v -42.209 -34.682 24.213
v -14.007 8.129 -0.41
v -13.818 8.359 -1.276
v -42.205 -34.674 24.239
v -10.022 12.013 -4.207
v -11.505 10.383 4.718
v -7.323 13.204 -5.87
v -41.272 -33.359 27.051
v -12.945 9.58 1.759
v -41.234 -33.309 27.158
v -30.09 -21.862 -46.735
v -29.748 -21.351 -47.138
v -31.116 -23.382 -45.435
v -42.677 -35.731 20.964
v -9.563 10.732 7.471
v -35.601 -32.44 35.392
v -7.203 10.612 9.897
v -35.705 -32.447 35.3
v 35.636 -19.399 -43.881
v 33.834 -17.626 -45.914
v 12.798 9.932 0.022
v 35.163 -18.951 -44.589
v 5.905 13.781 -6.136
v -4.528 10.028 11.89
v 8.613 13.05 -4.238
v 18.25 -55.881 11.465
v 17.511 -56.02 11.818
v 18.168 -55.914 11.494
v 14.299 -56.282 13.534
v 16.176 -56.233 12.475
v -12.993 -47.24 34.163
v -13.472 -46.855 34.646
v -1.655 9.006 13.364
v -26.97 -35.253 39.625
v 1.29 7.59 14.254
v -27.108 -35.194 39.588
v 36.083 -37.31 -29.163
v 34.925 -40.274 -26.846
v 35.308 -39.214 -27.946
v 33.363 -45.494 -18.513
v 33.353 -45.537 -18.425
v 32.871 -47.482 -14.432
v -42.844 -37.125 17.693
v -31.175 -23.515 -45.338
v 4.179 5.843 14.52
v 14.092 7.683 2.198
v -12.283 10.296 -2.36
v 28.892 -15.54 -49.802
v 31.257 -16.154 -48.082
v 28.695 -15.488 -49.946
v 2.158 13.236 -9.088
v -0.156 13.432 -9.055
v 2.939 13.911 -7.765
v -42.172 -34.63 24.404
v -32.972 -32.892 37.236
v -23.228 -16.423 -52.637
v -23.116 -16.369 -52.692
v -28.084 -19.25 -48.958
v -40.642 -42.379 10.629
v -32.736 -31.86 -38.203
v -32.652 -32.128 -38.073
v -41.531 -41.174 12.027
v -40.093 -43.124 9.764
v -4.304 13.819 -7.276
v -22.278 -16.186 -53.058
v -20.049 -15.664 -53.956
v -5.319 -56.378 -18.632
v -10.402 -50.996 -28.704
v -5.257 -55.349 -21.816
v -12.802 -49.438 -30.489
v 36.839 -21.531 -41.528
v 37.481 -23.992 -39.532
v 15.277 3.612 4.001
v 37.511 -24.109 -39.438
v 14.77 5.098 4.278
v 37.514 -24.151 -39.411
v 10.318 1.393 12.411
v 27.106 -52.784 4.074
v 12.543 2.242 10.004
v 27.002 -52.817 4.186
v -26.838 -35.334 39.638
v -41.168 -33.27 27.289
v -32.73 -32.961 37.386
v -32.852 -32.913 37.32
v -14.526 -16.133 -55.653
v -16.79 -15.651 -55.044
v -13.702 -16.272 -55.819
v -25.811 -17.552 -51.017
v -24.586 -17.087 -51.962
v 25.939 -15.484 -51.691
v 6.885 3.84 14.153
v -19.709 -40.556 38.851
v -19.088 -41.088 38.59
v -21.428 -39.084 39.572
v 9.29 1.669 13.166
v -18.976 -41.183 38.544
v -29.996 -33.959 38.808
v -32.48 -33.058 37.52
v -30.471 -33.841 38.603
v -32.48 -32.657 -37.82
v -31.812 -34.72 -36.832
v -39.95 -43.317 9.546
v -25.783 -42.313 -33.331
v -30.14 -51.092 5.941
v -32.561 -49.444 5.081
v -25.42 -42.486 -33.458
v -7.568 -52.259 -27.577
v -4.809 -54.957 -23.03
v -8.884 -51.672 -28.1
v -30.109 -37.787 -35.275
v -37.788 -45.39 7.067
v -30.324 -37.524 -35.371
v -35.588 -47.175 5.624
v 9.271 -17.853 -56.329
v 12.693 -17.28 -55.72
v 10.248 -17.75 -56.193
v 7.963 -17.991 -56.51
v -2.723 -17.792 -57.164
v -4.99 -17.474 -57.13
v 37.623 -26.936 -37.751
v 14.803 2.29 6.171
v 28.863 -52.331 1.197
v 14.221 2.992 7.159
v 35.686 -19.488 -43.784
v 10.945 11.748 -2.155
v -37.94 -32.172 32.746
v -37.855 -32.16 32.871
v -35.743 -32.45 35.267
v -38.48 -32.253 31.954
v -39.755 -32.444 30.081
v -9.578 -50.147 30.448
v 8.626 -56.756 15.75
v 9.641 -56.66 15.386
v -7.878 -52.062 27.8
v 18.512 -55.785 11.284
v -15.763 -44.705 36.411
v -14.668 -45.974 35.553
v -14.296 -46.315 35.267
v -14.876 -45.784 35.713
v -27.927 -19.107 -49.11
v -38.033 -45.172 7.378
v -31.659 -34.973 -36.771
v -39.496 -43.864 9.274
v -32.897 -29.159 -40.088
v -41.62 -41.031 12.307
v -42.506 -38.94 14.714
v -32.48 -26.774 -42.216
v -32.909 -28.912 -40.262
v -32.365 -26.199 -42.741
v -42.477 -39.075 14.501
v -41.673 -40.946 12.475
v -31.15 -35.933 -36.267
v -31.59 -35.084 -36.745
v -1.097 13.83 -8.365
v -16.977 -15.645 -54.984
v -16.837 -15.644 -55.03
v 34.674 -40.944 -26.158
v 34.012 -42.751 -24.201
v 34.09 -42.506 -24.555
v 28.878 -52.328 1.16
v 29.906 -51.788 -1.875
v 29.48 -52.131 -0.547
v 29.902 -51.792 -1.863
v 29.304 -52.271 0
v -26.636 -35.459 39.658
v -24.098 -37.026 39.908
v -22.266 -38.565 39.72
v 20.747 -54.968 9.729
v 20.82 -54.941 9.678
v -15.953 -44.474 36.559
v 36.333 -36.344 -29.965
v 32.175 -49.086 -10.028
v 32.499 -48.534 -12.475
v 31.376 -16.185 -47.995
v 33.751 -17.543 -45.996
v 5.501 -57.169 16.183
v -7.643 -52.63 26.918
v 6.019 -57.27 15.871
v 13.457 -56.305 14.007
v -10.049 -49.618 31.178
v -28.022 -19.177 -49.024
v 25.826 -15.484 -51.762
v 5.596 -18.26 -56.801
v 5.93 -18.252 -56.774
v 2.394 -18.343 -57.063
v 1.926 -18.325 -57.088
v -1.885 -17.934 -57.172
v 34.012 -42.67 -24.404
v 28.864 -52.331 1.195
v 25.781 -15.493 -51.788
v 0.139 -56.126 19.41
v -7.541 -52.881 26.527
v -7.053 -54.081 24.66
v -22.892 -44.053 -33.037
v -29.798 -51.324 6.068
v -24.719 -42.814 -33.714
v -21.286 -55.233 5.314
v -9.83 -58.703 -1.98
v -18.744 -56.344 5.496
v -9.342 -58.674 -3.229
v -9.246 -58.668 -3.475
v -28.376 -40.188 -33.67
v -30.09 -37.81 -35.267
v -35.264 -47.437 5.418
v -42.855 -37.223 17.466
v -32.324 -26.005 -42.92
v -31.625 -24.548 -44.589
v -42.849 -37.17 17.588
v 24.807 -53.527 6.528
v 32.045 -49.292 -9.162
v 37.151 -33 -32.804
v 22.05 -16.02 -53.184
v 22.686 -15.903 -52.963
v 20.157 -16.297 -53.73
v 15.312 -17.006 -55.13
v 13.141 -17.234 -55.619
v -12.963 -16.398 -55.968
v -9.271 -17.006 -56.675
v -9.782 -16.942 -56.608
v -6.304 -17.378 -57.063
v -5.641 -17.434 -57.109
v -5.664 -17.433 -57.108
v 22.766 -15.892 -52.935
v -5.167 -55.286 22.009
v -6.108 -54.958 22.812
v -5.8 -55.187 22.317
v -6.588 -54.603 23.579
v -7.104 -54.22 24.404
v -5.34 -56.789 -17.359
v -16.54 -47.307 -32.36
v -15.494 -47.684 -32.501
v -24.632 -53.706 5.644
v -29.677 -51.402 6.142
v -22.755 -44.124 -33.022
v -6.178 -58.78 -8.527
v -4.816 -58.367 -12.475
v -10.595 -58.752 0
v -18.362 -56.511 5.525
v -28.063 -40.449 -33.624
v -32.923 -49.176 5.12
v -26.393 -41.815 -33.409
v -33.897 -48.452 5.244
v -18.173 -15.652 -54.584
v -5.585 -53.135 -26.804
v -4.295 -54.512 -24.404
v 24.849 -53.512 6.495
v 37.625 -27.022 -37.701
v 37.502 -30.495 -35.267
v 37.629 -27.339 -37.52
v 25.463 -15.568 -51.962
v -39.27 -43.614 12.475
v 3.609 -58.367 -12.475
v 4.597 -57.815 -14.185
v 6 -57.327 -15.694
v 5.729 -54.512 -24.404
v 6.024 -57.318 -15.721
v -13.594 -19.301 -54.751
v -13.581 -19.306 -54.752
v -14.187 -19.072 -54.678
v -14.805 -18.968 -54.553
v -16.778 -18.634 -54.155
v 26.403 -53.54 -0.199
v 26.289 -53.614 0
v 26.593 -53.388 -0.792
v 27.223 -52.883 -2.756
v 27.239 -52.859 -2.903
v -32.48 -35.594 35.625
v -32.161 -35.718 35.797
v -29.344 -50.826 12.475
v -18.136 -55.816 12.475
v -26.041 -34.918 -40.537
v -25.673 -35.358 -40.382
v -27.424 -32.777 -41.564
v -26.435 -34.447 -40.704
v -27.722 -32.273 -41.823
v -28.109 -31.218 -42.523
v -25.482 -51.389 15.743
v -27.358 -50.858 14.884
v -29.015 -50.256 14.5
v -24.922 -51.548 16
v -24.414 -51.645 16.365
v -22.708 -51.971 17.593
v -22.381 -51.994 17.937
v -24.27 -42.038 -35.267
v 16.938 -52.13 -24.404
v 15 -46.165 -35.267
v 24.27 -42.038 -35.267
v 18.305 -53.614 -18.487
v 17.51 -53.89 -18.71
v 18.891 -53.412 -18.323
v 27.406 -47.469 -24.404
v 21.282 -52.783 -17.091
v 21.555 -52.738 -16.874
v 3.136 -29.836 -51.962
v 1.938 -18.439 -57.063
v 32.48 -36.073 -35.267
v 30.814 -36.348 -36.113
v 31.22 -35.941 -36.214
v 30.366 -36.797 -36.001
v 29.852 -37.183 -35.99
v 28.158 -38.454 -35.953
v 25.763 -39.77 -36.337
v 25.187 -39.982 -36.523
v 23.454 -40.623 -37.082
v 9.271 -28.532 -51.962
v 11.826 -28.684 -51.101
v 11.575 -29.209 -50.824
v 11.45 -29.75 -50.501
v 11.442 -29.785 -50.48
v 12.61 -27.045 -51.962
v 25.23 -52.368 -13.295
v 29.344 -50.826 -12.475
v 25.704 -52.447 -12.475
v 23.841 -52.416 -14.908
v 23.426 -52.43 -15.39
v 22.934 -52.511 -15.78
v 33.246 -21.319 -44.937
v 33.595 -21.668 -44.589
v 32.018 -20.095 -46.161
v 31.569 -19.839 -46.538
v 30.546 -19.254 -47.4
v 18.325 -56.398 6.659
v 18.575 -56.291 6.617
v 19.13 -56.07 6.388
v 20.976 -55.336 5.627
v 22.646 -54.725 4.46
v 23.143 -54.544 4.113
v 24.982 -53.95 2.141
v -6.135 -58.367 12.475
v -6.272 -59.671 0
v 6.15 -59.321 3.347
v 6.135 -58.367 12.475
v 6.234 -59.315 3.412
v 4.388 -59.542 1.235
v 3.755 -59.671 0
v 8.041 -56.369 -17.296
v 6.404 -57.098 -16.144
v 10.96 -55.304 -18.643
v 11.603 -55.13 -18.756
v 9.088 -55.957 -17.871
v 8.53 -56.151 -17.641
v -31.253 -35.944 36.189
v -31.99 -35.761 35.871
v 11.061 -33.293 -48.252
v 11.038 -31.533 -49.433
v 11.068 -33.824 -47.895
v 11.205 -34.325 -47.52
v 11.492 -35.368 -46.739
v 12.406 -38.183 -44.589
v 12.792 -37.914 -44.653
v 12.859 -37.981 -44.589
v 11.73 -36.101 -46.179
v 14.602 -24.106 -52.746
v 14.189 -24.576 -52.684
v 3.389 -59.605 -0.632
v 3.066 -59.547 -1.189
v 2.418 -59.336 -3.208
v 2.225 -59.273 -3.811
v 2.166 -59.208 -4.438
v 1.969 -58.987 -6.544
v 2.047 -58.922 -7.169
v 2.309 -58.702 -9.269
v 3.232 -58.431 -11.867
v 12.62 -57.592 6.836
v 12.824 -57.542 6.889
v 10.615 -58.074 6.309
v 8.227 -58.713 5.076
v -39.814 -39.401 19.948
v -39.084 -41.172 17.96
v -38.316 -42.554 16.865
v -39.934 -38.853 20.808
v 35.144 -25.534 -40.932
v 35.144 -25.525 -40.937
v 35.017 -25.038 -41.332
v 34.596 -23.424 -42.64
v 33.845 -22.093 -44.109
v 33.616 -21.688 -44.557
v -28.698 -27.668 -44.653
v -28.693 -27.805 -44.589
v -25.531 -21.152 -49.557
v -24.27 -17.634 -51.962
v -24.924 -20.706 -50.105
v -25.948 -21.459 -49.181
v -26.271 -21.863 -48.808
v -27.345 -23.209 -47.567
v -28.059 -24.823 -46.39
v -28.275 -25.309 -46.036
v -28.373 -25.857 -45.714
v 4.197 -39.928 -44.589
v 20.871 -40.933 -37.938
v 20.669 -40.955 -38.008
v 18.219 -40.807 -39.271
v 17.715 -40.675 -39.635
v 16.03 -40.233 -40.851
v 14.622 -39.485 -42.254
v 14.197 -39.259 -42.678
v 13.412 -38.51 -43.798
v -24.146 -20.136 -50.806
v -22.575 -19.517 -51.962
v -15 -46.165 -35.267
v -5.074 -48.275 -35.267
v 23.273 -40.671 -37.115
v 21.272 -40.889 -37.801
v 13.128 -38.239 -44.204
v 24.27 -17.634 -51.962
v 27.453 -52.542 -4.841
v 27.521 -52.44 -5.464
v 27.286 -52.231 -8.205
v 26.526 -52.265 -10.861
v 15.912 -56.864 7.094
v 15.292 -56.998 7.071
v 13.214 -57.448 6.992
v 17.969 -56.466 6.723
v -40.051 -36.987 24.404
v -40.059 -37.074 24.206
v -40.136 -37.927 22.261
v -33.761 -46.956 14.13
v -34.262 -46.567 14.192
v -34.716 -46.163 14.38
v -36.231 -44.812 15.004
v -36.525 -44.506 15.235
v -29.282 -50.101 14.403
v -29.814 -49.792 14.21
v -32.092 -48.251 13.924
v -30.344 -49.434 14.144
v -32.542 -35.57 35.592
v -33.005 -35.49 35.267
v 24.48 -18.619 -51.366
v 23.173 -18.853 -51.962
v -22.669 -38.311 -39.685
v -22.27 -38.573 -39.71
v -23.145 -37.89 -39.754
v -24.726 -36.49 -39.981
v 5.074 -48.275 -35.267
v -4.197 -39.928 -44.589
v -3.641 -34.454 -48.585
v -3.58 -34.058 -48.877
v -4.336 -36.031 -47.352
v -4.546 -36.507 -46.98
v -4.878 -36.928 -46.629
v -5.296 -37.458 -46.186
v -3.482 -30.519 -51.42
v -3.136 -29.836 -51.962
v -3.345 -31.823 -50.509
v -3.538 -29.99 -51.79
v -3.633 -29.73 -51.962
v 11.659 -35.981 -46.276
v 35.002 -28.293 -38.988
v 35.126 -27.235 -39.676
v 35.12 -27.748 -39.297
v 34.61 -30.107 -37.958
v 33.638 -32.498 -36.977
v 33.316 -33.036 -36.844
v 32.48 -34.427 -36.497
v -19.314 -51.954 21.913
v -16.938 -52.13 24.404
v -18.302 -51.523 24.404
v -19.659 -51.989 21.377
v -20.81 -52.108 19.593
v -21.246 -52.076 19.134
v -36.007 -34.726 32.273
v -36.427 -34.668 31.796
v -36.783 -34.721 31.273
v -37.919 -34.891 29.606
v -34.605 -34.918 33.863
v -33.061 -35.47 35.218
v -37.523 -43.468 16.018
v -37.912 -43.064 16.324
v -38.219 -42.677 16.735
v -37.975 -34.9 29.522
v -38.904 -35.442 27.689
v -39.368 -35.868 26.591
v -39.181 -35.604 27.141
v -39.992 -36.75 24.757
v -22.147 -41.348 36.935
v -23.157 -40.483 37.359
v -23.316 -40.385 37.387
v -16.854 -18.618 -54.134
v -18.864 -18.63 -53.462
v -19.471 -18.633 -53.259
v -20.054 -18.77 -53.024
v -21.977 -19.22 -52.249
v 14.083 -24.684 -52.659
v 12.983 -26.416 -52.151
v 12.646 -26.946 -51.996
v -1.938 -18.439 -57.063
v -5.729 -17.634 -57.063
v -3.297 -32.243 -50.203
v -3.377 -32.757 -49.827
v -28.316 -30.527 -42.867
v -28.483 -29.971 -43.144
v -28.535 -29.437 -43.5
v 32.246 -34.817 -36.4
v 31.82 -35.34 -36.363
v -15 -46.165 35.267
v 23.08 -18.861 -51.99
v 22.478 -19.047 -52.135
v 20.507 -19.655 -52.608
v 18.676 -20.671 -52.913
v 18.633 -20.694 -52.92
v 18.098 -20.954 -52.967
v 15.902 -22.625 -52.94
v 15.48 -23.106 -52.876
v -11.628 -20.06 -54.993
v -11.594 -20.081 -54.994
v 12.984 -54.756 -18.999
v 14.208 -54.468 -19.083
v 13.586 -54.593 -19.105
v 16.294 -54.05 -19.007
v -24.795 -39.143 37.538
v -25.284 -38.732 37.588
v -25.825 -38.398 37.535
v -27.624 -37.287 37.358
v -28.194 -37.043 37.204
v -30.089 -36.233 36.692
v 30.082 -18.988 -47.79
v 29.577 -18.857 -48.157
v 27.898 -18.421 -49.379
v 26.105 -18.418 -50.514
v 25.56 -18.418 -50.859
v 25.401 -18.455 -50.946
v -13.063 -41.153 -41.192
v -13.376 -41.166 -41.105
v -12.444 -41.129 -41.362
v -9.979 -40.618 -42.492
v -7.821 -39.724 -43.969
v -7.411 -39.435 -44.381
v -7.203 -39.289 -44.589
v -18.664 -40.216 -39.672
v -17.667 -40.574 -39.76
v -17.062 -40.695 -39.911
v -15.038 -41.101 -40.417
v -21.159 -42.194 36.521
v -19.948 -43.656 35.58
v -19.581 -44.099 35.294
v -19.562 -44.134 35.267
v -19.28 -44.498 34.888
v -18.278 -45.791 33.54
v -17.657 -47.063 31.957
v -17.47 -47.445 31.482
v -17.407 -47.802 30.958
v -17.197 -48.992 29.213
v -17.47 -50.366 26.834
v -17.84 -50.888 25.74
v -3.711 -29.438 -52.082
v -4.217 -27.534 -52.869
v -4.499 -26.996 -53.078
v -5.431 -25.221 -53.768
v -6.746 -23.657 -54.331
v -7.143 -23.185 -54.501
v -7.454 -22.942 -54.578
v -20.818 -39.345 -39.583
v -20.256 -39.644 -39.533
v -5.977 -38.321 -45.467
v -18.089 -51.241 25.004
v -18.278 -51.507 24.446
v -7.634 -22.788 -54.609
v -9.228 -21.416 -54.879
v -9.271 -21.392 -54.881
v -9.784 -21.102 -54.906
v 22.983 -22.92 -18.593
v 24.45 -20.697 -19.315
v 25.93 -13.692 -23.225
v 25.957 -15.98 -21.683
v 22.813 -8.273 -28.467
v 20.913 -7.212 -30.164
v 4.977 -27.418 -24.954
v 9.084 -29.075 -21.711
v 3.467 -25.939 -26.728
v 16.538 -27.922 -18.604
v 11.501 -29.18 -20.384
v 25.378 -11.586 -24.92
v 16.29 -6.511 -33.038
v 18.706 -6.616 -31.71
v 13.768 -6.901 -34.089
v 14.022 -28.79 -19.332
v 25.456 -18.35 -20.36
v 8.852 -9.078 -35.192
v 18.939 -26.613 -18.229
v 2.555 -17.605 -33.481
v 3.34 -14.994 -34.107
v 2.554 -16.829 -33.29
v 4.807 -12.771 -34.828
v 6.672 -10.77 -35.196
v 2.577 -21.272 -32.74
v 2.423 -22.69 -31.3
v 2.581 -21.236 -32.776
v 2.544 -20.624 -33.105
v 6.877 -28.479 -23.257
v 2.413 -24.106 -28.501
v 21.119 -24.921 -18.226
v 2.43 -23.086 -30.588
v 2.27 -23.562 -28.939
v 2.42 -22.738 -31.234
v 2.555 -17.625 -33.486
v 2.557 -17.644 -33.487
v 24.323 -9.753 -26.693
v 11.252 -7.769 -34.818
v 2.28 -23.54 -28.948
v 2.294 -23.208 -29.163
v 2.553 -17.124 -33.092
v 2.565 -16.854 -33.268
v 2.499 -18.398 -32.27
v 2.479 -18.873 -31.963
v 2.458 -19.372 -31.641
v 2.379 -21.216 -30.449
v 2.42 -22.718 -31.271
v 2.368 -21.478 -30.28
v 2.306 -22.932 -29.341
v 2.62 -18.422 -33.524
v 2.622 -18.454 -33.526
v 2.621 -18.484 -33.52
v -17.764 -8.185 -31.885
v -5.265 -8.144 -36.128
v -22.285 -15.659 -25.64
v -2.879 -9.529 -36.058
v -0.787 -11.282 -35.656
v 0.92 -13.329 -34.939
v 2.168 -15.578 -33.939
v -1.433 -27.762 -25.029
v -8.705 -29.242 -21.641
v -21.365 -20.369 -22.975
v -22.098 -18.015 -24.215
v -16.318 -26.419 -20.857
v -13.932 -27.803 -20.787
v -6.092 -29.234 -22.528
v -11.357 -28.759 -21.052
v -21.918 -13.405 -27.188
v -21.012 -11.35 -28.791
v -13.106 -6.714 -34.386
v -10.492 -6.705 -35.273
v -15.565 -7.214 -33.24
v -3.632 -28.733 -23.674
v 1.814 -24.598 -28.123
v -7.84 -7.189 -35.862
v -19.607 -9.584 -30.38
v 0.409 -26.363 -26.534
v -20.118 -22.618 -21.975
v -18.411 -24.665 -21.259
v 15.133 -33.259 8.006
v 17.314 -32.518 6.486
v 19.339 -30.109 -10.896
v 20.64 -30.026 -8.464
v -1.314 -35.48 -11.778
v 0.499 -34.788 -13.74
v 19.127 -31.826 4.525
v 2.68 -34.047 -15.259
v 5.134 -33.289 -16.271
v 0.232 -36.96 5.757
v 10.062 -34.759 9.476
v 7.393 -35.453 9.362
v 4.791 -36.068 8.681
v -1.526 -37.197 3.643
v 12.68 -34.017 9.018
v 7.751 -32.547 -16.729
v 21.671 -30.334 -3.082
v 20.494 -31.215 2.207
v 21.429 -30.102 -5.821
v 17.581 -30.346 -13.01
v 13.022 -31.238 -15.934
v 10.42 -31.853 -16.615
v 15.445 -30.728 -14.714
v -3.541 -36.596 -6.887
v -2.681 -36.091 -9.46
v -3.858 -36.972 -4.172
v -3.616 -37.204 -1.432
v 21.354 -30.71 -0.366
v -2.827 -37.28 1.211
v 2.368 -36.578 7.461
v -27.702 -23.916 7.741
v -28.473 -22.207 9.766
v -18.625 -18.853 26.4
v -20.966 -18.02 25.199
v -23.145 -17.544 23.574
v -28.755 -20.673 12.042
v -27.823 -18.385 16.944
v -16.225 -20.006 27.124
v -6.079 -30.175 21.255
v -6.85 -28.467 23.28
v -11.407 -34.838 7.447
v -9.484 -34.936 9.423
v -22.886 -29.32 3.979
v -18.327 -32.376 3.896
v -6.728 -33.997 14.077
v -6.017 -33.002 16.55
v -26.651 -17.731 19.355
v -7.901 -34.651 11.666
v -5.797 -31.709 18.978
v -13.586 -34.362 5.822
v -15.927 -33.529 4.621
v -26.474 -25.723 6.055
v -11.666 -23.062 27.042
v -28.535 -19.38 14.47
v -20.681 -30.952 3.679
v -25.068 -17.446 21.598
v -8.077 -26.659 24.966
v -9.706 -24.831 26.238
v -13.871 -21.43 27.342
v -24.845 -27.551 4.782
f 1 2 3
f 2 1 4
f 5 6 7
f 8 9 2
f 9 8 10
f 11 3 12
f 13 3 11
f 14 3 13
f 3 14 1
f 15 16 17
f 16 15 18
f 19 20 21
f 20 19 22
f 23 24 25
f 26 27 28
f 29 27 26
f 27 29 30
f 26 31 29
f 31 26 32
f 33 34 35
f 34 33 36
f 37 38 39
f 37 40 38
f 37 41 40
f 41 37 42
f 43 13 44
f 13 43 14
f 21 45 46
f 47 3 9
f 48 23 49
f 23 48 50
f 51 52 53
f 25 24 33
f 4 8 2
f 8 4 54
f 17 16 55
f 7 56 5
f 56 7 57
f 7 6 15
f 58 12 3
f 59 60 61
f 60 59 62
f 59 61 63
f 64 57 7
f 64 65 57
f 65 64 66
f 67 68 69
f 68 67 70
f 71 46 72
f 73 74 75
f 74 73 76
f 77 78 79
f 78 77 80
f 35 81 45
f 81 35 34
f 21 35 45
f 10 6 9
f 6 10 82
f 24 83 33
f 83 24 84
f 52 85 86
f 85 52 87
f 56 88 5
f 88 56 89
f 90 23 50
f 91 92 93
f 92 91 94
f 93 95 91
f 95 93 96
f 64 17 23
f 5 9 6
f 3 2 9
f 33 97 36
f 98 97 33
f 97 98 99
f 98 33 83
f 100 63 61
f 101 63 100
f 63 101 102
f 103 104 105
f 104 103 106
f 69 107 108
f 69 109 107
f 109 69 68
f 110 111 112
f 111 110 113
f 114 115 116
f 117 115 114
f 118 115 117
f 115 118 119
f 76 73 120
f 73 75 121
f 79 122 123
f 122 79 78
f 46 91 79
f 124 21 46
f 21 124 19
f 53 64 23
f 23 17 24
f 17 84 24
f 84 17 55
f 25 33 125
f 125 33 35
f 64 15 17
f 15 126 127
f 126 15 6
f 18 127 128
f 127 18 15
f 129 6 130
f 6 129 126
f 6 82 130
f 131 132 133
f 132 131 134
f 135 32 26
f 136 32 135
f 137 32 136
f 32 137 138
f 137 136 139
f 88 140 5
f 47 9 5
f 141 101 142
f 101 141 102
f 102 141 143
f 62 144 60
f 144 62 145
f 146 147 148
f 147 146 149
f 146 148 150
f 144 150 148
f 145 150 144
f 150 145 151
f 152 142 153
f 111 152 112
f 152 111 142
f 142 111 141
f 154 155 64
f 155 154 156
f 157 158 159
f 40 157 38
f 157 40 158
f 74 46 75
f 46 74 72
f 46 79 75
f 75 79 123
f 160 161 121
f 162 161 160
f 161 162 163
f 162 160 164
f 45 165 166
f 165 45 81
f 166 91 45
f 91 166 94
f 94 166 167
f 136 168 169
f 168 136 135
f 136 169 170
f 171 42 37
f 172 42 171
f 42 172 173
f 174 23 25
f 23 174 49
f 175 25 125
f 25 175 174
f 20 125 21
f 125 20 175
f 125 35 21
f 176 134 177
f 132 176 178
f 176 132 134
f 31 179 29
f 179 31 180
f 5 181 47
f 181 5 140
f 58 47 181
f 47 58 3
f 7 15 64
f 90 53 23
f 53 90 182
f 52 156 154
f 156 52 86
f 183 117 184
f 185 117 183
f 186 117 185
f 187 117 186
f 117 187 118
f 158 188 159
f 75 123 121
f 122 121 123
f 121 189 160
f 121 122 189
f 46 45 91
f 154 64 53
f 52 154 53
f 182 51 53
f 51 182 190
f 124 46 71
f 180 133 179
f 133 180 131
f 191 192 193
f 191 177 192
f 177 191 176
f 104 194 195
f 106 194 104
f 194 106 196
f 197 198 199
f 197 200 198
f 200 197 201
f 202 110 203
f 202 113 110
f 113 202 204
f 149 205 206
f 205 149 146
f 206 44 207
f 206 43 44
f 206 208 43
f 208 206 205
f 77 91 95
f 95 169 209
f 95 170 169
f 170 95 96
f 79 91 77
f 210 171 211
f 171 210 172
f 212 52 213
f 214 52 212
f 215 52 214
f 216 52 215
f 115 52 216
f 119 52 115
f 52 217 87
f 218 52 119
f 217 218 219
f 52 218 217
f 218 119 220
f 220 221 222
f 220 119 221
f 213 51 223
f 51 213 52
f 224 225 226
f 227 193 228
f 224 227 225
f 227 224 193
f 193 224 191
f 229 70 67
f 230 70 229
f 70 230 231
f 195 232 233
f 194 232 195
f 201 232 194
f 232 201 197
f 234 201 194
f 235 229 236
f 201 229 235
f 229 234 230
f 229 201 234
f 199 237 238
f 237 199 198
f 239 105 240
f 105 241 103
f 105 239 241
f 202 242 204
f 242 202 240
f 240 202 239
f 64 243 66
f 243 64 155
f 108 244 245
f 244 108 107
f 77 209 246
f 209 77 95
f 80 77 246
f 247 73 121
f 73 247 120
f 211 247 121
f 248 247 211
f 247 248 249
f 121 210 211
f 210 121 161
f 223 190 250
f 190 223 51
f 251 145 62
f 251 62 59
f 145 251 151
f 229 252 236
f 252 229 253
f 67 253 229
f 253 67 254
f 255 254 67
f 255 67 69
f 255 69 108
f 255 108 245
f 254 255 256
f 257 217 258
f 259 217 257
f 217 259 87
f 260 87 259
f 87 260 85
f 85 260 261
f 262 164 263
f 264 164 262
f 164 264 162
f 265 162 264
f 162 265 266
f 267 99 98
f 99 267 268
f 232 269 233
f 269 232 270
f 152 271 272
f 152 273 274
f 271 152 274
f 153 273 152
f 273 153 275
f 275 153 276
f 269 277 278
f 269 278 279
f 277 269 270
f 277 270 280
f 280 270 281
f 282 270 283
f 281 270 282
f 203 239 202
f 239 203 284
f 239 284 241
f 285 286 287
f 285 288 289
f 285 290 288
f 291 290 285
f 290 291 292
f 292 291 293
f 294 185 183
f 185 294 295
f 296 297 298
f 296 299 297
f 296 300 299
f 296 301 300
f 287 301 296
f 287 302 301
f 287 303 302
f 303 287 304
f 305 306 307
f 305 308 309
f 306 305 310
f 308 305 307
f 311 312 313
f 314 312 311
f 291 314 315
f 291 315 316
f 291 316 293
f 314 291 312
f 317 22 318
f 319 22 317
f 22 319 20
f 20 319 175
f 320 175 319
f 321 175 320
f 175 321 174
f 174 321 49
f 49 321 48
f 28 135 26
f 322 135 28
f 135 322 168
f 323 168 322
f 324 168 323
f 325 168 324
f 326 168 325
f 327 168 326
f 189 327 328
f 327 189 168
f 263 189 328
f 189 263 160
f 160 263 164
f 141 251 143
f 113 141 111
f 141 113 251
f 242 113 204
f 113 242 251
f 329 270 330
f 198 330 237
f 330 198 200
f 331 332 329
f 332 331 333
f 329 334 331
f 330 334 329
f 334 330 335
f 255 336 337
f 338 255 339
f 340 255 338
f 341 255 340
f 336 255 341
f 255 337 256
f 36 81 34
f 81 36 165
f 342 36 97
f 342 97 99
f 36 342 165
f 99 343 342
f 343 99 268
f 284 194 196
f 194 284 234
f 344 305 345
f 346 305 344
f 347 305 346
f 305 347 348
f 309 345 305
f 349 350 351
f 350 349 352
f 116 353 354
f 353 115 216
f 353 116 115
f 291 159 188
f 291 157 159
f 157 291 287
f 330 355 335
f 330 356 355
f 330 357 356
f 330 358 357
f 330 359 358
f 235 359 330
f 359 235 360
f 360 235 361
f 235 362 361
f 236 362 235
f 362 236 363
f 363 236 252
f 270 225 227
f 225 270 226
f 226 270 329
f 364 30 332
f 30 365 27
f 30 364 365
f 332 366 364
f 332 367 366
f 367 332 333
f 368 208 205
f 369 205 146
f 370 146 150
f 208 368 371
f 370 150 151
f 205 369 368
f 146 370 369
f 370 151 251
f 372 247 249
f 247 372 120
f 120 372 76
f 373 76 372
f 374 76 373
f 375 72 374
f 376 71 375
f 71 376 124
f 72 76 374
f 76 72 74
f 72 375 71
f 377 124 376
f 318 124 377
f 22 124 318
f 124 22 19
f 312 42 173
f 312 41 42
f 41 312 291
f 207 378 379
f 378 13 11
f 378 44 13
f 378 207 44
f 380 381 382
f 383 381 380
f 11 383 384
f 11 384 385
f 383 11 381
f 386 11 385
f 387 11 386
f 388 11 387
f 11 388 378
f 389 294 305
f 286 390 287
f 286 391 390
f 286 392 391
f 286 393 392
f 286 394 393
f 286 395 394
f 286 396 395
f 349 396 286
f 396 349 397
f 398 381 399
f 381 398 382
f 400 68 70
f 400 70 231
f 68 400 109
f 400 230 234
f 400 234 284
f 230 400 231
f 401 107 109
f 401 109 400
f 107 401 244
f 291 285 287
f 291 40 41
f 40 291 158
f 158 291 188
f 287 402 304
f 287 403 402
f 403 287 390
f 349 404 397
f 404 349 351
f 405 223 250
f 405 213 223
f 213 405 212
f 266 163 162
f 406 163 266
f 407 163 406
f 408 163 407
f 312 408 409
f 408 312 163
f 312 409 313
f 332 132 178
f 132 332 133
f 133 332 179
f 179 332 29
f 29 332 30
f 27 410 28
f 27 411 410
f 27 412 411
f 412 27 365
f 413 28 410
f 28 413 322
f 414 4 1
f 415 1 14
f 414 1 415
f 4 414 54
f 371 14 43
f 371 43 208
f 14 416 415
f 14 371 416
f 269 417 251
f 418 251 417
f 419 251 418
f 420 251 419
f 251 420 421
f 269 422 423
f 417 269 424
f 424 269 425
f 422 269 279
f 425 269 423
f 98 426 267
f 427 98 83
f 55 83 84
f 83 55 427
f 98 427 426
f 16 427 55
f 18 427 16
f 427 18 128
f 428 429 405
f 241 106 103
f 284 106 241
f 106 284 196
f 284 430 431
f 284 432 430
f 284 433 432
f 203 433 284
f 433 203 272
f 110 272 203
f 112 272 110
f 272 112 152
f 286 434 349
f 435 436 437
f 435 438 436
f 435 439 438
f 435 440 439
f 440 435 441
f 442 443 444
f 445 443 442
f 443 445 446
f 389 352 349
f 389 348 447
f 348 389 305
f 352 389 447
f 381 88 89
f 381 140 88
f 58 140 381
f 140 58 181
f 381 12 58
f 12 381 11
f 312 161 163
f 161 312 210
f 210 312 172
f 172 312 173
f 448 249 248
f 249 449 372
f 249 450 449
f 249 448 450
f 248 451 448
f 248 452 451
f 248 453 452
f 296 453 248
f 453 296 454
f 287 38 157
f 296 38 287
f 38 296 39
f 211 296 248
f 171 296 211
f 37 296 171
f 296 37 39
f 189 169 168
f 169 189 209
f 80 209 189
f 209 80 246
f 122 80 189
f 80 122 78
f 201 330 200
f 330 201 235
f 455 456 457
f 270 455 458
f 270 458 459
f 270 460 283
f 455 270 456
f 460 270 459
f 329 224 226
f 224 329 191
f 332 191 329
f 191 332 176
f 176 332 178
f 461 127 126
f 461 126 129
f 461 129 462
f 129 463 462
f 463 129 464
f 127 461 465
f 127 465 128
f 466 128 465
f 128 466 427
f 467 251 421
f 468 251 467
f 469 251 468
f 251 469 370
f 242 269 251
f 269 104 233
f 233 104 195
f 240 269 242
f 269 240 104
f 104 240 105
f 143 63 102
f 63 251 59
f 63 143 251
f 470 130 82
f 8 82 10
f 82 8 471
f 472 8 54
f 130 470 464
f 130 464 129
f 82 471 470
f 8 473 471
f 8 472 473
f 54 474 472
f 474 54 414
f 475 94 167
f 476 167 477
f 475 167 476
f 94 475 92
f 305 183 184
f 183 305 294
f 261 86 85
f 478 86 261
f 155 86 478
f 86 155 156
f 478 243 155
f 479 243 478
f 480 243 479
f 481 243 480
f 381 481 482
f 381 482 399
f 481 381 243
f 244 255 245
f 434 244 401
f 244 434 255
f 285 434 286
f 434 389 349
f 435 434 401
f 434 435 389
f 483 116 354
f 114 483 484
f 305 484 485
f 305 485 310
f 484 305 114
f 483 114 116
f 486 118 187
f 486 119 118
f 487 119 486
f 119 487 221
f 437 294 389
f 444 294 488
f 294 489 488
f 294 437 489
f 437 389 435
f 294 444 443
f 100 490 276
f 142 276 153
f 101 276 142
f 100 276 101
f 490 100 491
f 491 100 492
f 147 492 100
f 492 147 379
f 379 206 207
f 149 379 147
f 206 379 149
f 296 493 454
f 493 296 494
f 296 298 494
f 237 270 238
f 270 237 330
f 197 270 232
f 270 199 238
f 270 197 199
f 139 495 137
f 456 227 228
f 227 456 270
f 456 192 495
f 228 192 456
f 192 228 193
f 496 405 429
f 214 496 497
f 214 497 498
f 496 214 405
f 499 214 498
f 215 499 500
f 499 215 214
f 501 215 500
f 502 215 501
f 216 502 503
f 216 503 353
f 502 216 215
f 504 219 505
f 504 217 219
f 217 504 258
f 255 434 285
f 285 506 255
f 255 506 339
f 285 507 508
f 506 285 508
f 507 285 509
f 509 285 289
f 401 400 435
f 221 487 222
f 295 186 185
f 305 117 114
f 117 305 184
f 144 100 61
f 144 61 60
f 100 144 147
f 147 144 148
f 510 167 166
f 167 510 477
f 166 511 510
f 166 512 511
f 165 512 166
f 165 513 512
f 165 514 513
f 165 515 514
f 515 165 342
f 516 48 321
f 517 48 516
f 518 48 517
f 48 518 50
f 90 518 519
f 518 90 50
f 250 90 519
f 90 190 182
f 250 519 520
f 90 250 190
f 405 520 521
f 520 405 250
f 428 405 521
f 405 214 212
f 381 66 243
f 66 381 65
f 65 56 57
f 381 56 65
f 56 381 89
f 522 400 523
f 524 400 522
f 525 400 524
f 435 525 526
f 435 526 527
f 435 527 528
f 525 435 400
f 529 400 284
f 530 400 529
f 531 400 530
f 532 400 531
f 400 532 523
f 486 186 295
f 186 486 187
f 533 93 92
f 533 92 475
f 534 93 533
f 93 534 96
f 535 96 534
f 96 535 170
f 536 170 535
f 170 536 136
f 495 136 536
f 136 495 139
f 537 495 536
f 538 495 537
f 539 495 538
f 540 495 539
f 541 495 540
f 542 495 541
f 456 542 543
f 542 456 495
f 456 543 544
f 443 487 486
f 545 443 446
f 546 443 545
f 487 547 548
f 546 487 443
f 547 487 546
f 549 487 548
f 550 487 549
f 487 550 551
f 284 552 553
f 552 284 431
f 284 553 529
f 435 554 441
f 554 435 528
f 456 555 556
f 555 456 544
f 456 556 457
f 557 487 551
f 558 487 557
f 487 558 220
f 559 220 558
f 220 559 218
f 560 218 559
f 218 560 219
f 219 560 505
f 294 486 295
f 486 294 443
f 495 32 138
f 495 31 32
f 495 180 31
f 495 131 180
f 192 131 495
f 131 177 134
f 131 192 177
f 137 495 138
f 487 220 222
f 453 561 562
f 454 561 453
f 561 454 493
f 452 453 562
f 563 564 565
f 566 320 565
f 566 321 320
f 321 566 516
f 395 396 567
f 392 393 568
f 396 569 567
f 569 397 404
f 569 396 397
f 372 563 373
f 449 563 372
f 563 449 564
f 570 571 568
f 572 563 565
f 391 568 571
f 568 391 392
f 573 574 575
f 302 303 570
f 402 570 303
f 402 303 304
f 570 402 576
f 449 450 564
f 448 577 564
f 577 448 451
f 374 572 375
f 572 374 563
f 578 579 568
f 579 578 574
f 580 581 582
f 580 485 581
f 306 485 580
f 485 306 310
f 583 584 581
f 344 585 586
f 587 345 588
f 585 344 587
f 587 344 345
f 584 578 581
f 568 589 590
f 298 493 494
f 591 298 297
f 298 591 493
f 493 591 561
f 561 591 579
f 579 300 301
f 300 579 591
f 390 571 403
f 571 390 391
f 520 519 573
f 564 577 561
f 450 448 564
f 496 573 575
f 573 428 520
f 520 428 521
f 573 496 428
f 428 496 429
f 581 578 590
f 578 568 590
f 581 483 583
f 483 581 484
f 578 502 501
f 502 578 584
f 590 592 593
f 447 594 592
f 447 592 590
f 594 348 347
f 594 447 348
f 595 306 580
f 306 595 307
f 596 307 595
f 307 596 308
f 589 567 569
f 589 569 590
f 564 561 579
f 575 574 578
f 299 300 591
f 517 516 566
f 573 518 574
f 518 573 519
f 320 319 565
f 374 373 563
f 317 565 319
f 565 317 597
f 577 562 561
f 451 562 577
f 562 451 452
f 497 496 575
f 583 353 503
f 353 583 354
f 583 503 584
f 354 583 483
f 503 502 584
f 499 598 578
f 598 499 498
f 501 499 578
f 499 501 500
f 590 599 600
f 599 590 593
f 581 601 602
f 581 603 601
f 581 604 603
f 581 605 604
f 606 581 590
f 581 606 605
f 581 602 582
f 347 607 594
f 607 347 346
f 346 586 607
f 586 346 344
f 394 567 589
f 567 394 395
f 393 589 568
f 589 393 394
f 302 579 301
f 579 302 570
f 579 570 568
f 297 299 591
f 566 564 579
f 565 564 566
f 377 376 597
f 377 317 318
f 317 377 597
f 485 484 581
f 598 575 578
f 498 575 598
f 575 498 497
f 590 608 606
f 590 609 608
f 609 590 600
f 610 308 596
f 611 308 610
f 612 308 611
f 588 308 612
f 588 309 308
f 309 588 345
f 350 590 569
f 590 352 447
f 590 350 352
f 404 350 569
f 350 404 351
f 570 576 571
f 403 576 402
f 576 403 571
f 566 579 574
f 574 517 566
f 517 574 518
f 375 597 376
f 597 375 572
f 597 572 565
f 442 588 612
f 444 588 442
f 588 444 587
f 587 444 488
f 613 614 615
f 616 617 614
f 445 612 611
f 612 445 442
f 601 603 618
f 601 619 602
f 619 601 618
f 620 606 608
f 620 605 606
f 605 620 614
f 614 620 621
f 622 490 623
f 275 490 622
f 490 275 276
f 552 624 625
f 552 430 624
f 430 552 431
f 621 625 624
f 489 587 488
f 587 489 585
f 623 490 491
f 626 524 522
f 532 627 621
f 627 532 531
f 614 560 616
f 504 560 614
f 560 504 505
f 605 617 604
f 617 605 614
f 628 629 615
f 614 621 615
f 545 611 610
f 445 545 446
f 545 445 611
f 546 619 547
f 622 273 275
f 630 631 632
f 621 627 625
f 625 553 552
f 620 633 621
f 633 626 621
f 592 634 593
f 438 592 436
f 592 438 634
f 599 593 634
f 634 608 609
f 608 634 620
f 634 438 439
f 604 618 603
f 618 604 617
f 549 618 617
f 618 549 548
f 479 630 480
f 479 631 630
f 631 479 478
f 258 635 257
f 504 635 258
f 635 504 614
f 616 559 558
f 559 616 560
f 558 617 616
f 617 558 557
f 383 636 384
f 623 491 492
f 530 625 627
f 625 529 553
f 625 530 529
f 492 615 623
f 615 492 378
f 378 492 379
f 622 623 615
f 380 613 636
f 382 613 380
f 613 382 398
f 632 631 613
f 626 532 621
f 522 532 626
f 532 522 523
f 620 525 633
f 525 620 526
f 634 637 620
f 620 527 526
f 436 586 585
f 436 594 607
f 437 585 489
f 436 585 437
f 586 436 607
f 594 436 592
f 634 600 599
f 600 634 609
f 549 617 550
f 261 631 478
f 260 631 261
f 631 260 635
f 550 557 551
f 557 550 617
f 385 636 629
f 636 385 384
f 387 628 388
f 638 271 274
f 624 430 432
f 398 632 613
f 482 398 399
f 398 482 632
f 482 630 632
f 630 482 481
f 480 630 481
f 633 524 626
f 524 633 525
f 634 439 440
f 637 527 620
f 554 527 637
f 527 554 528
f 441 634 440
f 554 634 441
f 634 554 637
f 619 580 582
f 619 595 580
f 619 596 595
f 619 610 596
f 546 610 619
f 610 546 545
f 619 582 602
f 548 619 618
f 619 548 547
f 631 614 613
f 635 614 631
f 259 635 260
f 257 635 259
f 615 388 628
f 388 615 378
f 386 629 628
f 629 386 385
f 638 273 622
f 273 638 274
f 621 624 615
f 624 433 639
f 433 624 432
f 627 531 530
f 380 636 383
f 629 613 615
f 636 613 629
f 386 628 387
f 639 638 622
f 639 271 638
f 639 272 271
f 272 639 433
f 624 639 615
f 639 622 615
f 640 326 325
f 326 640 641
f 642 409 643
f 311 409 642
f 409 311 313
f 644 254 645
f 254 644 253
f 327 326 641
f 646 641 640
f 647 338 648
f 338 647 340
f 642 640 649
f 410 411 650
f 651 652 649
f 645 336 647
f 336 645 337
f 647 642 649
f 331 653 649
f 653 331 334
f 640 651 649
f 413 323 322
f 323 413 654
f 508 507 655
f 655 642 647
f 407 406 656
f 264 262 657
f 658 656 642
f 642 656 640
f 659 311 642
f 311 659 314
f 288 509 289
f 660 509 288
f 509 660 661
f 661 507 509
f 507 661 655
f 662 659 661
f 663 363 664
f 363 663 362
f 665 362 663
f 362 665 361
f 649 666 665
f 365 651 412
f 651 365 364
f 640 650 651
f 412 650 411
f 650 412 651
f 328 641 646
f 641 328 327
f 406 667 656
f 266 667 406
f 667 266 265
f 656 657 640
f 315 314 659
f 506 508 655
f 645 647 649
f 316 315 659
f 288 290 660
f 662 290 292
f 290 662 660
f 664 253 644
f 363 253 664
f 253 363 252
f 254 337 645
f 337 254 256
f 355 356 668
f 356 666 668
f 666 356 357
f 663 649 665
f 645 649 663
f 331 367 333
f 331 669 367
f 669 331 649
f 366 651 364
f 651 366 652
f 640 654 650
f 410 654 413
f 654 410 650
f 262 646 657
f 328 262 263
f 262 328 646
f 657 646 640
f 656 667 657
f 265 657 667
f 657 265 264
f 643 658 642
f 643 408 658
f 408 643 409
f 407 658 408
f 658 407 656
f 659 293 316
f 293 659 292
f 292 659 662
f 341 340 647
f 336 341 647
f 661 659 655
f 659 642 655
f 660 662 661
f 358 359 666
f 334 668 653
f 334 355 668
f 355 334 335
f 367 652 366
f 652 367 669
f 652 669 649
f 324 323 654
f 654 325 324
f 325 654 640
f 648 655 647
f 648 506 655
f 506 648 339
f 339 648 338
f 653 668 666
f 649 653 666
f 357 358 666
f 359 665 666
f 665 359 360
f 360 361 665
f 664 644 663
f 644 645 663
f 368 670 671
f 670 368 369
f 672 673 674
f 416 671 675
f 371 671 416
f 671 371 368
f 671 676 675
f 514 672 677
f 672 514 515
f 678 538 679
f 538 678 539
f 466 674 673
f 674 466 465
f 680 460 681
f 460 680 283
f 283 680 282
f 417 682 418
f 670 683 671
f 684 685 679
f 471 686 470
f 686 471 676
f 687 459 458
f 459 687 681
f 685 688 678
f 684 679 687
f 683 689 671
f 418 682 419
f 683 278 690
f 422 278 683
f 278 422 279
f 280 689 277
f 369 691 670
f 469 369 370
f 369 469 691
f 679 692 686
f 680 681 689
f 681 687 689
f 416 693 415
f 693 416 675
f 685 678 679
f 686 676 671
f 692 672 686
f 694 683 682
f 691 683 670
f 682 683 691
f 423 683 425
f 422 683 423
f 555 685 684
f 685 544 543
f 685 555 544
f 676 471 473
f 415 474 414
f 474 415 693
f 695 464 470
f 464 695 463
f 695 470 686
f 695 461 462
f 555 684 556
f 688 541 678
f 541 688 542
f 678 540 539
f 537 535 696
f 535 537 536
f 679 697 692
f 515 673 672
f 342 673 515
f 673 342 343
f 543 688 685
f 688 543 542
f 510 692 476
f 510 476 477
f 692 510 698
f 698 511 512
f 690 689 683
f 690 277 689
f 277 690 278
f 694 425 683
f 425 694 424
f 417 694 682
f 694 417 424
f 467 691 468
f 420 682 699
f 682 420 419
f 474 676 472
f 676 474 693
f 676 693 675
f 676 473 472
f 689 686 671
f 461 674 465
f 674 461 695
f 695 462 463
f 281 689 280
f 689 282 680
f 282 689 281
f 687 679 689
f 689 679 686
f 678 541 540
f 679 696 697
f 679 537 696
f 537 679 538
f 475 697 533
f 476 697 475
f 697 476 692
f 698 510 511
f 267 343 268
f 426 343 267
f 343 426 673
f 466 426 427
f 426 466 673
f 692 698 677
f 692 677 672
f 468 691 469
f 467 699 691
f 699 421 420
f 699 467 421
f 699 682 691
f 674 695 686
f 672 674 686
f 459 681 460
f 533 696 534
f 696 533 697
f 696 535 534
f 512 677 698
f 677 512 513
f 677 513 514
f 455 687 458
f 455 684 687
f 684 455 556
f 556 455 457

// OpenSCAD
difference() {
	intersection() {
		hull() {
			rotate(a = -122.8372704074, v = [0.8394536007, -0.0357393433, 0.0000000000]) {
				rotate(a = -90.0000000000, v = [0.8896774161, -0.4565896356, 0.0000000000]) {
					cylinder(h = 60, r = 16.2000000000);
				}
			}
			rotate(a = -122.8372704074, v = [0.8394536007, -0.0357393433, 0.0000000000]) {
				rotate(a = -90.0000000000, v = [0.9775364867, 0.2107662617, -0.0000000000]) {
					cylinder(h = 60, r = 16.2000000000);
				}
			}
			rotate(a = -122.8372704074, v = [0.8394536007, -0.0357393433, 0.0000000000]) {
				rotate(a = -137.8905281201, v = [0.5890036732, -0.3204855634, 0.0000000000]) {
					cylinder(h = 60, r = 16.2000000000);
				}
			}
			rotate(a = -122.8372704074, v = [0.8394536007, -0.0357393433, 0.0000000000]) {
				rotate(a = -152.3897027579, v = [0.0640329190, 0.4590104546, -0.0000000000]) {
					cylinder(h = 60, r = 16.2000000000);
				}
			}
		}
		sphere(r = 60);
	}
	union() {
		rotate(a = -122.8372704074, v = [0.8394536007, -0.0357393433, 0.0000000000]) {
			rotate(a = -90.0000000000, v = [0.8896774161, -0.4565896356, 0.0000000000]) {
				translate(v = [0, 0, 35]) {
					cylinder(h = 100, r = 13.2000000000);
				}
			}
		}
		rotate(a = -122.8372704074, v = [0.8394536007, -0.0357393433, 0.0000000000]) {
			rotate(a = -90.0000000000, v = [0.9775364867, 0.2107662617, -0.0000000000]) {
				translate(v = [0, 0, 35]) {
					cylinder(h = 100, r = 13.2000000000);
				}
			}
		}
		rotate(a = -122.8372704074, v = [0.8394536007, -0.0357393433, 0.0000000000]) {
			rotate(a = -137.8905281201, v = [0.5890036732, -0.3204855634, 0.0000000000]) {
				translate(v = [0, 0, 35]) {
					cylinder(h = 100, r = 13.2000000000);
				}
			}
		}
		rotate(a = -122.8372704074, v = [0.8394536007, -0.0357393433, 0.0000000000]) {
			rotate(a = -152.3897027579, v = [0.0640329190, 0.4590104546, -0.0000000000]) {
				translate(v = [0, 0, 35]) {
					cylinder(h = 100, r = 13.2000000000);
				}
			}
		}
	}
}
